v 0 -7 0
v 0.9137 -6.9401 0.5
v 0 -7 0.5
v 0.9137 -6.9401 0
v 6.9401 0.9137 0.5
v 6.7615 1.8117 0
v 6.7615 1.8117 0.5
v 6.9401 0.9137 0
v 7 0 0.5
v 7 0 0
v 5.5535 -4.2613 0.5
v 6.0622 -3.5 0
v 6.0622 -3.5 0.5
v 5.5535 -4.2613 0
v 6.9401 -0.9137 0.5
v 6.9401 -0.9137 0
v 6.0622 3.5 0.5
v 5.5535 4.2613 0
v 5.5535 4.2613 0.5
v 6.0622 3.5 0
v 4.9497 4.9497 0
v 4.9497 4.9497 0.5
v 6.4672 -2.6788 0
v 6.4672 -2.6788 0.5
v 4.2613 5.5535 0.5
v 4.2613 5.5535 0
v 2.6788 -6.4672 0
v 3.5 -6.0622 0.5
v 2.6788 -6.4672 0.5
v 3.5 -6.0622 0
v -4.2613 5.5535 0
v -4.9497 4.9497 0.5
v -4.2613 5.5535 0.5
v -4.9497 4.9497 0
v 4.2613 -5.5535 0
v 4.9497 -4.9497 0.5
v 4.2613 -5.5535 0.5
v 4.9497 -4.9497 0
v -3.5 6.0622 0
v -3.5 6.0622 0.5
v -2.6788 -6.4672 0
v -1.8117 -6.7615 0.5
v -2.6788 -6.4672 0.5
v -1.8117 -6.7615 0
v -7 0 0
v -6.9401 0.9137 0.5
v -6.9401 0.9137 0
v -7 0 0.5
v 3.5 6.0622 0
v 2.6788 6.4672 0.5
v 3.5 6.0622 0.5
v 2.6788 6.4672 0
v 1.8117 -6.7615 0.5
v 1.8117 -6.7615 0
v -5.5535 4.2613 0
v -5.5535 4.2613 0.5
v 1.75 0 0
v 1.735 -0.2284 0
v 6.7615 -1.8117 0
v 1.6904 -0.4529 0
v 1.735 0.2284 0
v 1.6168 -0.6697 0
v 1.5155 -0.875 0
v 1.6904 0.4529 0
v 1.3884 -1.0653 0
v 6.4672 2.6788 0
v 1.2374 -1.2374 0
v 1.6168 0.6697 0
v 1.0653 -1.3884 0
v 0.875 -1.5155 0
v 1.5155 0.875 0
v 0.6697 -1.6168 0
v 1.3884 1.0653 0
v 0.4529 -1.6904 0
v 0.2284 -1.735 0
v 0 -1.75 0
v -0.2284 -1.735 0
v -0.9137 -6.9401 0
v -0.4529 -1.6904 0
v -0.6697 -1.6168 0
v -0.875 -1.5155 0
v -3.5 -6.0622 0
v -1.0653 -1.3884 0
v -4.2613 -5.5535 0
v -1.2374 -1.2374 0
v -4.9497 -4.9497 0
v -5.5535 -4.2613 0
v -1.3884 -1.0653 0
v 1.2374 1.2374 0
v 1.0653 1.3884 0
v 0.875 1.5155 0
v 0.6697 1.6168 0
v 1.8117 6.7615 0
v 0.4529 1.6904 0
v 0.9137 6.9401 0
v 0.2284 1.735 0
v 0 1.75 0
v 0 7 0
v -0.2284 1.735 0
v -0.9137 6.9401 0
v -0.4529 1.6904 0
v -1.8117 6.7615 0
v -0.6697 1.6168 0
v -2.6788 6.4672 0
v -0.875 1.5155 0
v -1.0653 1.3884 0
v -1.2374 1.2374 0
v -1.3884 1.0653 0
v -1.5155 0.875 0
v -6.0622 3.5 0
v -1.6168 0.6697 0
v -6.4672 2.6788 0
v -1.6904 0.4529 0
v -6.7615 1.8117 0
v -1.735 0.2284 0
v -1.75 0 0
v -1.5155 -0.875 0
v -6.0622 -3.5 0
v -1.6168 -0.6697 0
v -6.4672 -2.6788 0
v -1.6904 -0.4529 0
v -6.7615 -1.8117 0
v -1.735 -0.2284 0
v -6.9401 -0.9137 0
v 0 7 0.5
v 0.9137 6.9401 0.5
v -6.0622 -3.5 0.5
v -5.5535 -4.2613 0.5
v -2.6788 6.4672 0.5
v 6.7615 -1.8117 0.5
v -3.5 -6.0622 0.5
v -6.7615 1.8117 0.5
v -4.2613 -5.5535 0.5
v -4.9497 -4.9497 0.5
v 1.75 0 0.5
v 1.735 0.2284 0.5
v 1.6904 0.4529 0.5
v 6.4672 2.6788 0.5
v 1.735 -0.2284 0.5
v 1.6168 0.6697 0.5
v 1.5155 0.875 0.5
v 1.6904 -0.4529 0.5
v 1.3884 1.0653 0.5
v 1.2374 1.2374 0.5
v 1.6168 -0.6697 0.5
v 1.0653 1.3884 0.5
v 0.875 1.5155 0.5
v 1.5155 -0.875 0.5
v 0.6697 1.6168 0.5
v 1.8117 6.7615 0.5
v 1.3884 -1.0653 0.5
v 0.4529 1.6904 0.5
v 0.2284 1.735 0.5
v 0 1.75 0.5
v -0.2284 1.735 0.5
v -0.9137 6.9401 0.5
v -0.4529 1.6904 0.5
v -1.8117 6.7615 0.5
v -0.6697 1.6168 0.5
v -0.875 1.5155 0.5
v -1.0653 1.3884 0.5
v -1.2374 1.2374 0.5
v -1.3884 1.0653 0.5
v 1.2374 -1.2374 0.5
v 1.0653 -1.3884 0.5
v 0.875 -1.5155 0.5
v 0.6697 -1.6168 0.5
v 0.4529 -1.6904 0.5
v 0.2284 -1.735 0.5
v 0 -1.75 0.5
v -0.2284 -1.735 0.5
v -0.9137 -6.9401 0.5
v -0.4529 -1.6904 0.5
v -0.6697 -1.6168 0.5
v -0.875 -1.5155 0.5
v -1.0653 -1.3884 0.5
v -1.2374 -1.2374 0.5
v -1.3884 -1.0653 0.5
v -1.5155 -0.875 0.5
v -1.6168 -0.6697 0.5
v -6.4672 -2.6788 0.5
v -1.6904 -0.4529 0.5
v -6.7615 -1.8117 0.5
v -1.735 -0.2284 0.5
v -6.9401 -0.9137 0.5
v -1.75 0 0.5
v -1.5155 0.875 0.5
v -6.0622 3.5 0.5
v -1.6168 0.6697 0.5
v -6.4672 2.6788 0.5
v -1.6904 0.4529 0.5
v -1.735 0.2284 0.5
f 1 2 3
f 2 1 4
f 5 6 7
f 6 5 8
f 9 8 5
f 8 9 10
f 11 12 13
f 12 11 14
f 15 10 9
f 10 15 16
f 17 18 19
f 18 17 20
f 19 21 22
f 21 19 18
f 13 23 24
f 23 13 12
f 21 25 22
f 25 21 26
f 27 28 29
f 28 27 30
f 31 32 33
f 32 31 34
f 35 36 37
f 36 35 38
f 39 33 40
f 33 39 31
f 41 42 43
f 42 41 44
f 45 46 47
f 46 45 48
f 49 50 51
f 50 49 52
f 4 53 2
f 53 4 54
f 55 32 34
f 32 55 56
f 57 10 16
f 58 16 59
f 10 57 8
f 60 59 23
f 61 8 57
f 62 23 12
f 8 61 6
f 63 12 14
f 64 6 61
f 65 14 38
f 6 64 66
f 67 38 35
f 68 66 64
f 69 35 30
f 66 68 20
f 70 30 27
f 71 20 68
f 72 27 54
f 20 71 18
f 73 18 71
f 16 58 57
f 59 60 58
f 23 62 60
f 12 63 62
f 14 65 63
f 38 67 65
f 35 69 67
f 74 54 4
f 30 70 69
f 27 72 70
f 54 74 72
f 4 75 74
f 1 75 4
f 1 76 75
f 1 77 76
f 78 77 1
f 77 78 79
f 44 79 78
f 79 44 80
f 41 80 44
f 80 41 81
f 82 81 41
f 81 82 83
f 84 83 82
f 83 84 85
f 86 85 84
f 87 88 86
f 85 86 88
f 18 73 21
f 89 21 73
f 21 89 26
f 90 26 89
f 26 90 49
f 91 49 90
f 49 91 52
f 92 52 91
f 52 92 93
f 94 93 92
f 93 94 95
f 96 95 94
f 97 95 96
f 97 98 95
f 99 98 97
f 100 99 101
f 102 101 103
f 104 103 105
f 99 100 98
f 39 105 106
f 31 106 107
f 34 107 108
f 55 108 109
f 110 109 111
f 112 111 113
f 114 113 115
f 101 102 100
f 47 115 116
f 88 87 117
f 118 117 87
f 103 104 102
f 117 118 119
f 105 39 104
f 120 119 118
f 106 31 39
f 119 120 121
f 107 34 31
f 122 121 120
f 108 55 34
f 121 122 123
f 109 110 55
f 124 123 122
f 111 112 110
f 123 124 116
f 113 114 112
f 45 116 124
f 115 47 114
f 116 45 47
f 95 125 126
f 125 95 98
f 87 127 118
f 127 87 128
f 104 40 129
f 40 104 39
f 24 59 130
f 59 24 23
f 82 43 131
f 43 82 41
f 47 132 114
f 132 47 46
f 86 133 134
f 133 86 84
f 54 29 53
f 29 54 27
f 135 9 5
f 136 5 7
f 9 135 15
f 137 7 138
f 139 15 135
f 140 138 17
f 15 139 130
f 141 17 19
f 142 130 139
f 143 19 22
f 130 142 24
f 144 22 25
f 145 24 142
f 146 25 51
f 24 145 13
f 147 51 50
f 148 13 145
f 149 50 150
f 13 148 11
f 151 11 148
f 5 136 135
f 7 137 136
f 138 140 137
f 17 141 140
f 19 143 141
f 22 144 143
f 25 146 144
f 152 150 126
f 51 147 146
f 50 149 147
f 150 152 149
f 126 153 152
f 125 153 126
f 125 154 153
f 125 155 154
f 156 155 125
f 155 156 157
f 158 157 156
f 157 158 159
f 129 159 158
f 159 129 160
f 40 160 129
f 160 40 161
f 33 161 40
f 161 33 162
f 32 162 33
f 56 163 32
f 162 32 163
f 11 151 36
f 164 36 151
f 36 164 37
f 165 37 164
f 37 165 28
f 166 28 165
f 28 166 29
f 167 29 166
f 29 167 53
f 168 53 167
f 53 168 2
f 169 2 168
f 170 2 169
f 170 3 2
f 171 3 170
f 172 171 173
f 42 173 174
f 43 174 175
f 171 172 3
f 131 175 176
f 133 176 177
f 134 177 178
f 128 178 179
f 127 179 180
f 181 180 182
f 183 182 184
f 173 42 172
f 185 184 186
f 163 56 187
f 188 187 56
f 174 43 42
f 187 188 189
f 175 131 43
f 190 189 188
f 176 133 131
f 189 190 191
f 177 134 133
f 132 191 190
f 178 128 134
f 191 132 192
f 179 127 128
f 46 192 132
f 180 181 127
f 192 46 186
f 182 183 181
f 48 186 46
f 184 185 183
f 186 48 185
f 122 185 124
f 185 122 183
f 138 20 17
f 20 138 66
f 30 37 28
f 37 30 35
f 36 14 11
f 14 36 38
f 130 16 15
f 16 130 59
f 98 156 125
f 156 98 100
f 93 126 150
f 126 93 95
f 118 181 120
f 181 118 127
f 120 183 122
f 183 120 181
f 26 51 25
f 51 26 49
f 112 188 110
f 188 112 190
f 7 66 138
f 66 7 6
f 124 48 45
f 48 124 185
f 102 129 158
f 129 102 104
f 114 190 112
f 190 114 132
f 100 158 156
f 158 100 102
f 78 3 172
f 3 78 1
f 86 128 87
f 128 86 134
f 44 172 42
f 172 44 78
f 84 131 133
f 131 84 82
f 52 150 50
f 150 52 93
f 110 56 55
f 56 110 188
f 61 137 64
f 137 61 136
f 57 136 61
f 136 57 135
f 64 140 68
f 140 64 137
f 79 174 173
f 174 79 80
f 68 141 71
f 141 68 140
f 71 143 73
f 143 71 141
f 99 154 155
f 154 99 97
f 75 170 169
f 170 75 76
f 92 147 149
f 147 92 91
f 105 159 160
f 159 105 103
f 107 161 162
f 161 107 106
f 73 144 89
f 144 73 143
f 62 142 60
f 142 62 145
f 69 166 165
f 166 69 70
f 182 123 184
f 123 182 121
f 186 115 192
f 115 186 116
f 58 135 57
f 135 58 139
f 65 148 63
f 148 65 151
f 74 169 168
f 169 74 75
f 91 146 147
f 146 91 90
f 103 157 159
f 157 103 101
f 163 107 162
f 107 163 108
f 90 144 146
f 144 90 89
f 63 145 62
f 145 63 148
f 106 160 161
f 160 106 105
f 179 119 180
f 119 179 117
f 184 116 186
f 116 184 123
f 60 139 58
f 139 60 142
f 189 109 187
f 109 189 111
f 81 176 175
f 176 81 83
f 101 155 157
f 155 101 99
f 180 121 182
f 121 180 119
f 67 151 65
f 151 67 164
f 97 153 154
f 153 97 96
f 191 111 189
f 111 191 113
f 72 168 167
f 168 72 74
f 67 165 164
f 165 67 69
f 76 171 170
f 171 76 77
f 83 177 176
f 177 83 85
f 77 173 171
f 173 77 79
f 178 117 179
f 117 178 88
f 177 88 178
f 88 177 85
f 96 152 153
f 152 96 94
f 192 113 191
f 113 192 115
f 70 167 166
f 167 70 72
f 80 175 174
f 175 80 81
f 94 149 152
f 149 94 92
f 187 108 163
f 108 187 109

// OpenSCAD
// file: parameters.scad
// =============================================================================
// Gen-BM — nightly 2026-10-06 (physics_scorer, honest magpylib watts)
// Lowest-gap pancake: Ø20 ring at R52 (Ø5 assists R42/52/62) with low-profile 7.65 mm dense-wound copper and an 18 mm radial build on wide 29–71 mm sector bobbins — the smallest magnet gap of the series (10.25 mm) — on thick 1/4" (6.35 mm) steel so the higher flux per pole stays well clear of saturation.
// Clocking 0 deg (magnets N facing S) + D-flat keyed bore + index notch + flip-symmetric hole map.
// Windable 2-piece bobbin; turns = physics_scorer turns_fit; copper only between flanges.
// Steel back-iron: 2× Ø138 × 6.35 mm (1/4") mild-steel discs (steel_backiron_disc.dxf); magnets sit ON the steel
// (through-pockets) -> score with --back-iron.
// =============================================================================
topology            = "dual_rotor";

// --- Wire / winding (physics_scorer winding-fit) -------------------------------
wire_awg            = 26;
wire_od             = 0.45;     // insulated OD mm (bare 0.405)
fill_realistic      = 0.65;     // insulated-wire area / window (DENSE layered wind with a jig; scorer cap 0.65)
turns               = 562;       // = physics_scorer turns_fit (do NOT raise)
coil_former_type    = "bobbin";
coil_core_inset     = 18.00;     // radial copper build: hub = copper boundary inset by this
wind_build_axial    = 0.0;      // nothing proud of the flanges
wind_build_radial   = 0.0;

// --- Bobbin (base + lid) ---------------------------------------------------------
coil_id_r           = 29.00;    // copper boundary sector
coil_od_r           = 71.00;
span_deg            = 52.68;    // = pitch - 2*asin((wall+0.85)/coil_id_r) -> >=1.2 mm stator web
former_web          = 7.65;     // copper height between flanges (TALL copper: steel keeps Bz up)
flange_t            = 0.80;     // >= 0.8 mm FDM wall rule (tall winds push on the flanges)
wall                = 1.00;     // flange lip beyond copper
former_bare_h       = former_web + 2 * flange_t;
coil_envelope_h     = former_bare_h + 2 * wind_build_axial;
tab_w               = 7.0;
tab_len             = 7.0;
tab_h               = former_bare_h / 2;
pin_d               = 1.9;      // 1.75 mm filament locating pin
coil_mount_r        = coil_od_r + 0.2 + 4.0;
lead_y              = 1.6;
lead_slot_w         = 0.9;
lead_groove_d       = 0.6;

// --- Gap -------------------------------------------------------------------------
run_clear           = 0.50;     // rotor face -> flange
gap_spacer_h        = run_clear + wind_build_axial;
m2m                 = coil_envelope_h + 2 * run_clear;   // rotor face to rotor face (= gap_sleeve length)

// --- Stator ----------------------------------------------------------------------
coil_stations       = 6;
bay_clear           = 0.25;
stator_thick        = former_bare_h;                        // bobbins flush both faces
stator_od           = 160.0;
shaft_clear_stator  = 14.0;     // stator is static; gap sleeve OD 12 spins inside

// --- Rotor(s) --------------------------------------------------------------------
magnet_Br           = 1.43;     // N52
magnet_d_large      = 20.0;
magnet_h_large      = 5.0;      // one O20x5 per pocket
magnet_h_small      = 5.0;      // one O5x5 per pocket
halbach_magnetisation = "diametric"; // O5x5 assist magnets MUST be DIAMETRICALLY magnetised (tangential)
rotor_b_same_axis   = true;     // same-index magnets share one axis: N faces S across the gap
large_pocket_d      = 20.3;
small_pocket_d      = 5.3;
pocket_h            = 5.10;     // THROUGH the carrier: magnet back face sits on the steel disc
large_n             = 8;
R_large             = 52.0;
R_small_inner       = 42.0;
R_small_mid         = 52.0;
R_small_outer       = 62.0;
small_r_list        = [R_small_inner, R_small_mid, R_small_outer];   // O5 pockets between poles
carrier_od          = 138.0;
carrier_thick       = pocket_h;
hub_h               = 13.5;     // > steel_t + insert: radial set-screw clears the steel
hub_od              = 24.0;     // slim hub so the M4 brace rods fit at R~18 inside the coil ring
hub_insert_d        = 4.0;      // M3 heat-set insert, radial, bears on the D-flat
rotor_b_offset_deg  = 0.0;      // CLOCKING: magnets directly opposite
shaft_key           = "dflat";
dflat_depth         = 0.5;      // 8 mm shaft with 0.5 mm flat (7.5 across flat)
index_notch_d       = 3.0;

// --- Steel back-iron (buyable laser-cut) -------------------------------------------
steel_t             = 6.35;      // mild steel thickness (image method ignores it; sized from steel_flux.py so the return path stays well below saturation)
steel_center_hole   = 26.0;     // slips over the rotor hub (OD 24)
steel_od            = carrier_od;   // steel disc OD = rotor carrier OD

// --- Modular MAX interface ----------------------------------------------------------
shaft_bore          = 8.35;
dflat_x             = 4.0 - dflat_depth + (shaft_bore - 8.0) / 2;
bearing_d           = 21.85;
bearing_h           = 7.2;
m3_clear            = 3.5;
bolt_r_inner        = 30.0;     // M3 steel-disc clamp bolts (inside the magnet ring)
bolt_n_inner        = 4;
bolt_inner_angles   = [0, 90, 180, 270];
bolt_r_outer        = 65.0;     // M3 steel-disc clamp bolts (outside the magnet ring)
bolt_outer_angles   = [45, 135, 225, 315];
flange_bolt_r       = 75.0;     // frame rods: OUTSIDE the rotor OD (rotors spin inside them)
flange_bolt_n       = 6;
flange_bolt_offset  = 30.00;    // between coil stations -> never cuts a lead groove/tab
brace_r             = 18.0;
brace_d             = 4.3;      // temporary M4 jack rods (assembly only)
brace_n             = 4;
brace_angles        = [45, 135, 225, 315];          // flip-symmetric

spacer_pad_od       = 14.0;
spacer_pad_id       = m3_clear;
endbell_od          = 160.0;
endbell_thick       = 8.0;
endbell_shaft_clear = 10.0;
collar_h            = 10.0;
standoff_od         = 9.0;
frame_standoff_h    = run_clear + carrier_thick + hub_h + collar_h + 2.0;
sleeve_od           = 12.0;
plate_max_mm        = 410;

$fn = 64;
// main file
// Gen-BM — assembly gap shim, h = run_clear (rotor face -> flange); copper is inside the flanges
include <parameters.scad>;
$fn = 48;
difference() {
    cylinder(d=spacer_pad_od, h=gap_spacer_h);
    translate([0, 0, -0.1]) cylinder(d=spacer_pad_id, h=gap_spacer_h + 0.2);
}
